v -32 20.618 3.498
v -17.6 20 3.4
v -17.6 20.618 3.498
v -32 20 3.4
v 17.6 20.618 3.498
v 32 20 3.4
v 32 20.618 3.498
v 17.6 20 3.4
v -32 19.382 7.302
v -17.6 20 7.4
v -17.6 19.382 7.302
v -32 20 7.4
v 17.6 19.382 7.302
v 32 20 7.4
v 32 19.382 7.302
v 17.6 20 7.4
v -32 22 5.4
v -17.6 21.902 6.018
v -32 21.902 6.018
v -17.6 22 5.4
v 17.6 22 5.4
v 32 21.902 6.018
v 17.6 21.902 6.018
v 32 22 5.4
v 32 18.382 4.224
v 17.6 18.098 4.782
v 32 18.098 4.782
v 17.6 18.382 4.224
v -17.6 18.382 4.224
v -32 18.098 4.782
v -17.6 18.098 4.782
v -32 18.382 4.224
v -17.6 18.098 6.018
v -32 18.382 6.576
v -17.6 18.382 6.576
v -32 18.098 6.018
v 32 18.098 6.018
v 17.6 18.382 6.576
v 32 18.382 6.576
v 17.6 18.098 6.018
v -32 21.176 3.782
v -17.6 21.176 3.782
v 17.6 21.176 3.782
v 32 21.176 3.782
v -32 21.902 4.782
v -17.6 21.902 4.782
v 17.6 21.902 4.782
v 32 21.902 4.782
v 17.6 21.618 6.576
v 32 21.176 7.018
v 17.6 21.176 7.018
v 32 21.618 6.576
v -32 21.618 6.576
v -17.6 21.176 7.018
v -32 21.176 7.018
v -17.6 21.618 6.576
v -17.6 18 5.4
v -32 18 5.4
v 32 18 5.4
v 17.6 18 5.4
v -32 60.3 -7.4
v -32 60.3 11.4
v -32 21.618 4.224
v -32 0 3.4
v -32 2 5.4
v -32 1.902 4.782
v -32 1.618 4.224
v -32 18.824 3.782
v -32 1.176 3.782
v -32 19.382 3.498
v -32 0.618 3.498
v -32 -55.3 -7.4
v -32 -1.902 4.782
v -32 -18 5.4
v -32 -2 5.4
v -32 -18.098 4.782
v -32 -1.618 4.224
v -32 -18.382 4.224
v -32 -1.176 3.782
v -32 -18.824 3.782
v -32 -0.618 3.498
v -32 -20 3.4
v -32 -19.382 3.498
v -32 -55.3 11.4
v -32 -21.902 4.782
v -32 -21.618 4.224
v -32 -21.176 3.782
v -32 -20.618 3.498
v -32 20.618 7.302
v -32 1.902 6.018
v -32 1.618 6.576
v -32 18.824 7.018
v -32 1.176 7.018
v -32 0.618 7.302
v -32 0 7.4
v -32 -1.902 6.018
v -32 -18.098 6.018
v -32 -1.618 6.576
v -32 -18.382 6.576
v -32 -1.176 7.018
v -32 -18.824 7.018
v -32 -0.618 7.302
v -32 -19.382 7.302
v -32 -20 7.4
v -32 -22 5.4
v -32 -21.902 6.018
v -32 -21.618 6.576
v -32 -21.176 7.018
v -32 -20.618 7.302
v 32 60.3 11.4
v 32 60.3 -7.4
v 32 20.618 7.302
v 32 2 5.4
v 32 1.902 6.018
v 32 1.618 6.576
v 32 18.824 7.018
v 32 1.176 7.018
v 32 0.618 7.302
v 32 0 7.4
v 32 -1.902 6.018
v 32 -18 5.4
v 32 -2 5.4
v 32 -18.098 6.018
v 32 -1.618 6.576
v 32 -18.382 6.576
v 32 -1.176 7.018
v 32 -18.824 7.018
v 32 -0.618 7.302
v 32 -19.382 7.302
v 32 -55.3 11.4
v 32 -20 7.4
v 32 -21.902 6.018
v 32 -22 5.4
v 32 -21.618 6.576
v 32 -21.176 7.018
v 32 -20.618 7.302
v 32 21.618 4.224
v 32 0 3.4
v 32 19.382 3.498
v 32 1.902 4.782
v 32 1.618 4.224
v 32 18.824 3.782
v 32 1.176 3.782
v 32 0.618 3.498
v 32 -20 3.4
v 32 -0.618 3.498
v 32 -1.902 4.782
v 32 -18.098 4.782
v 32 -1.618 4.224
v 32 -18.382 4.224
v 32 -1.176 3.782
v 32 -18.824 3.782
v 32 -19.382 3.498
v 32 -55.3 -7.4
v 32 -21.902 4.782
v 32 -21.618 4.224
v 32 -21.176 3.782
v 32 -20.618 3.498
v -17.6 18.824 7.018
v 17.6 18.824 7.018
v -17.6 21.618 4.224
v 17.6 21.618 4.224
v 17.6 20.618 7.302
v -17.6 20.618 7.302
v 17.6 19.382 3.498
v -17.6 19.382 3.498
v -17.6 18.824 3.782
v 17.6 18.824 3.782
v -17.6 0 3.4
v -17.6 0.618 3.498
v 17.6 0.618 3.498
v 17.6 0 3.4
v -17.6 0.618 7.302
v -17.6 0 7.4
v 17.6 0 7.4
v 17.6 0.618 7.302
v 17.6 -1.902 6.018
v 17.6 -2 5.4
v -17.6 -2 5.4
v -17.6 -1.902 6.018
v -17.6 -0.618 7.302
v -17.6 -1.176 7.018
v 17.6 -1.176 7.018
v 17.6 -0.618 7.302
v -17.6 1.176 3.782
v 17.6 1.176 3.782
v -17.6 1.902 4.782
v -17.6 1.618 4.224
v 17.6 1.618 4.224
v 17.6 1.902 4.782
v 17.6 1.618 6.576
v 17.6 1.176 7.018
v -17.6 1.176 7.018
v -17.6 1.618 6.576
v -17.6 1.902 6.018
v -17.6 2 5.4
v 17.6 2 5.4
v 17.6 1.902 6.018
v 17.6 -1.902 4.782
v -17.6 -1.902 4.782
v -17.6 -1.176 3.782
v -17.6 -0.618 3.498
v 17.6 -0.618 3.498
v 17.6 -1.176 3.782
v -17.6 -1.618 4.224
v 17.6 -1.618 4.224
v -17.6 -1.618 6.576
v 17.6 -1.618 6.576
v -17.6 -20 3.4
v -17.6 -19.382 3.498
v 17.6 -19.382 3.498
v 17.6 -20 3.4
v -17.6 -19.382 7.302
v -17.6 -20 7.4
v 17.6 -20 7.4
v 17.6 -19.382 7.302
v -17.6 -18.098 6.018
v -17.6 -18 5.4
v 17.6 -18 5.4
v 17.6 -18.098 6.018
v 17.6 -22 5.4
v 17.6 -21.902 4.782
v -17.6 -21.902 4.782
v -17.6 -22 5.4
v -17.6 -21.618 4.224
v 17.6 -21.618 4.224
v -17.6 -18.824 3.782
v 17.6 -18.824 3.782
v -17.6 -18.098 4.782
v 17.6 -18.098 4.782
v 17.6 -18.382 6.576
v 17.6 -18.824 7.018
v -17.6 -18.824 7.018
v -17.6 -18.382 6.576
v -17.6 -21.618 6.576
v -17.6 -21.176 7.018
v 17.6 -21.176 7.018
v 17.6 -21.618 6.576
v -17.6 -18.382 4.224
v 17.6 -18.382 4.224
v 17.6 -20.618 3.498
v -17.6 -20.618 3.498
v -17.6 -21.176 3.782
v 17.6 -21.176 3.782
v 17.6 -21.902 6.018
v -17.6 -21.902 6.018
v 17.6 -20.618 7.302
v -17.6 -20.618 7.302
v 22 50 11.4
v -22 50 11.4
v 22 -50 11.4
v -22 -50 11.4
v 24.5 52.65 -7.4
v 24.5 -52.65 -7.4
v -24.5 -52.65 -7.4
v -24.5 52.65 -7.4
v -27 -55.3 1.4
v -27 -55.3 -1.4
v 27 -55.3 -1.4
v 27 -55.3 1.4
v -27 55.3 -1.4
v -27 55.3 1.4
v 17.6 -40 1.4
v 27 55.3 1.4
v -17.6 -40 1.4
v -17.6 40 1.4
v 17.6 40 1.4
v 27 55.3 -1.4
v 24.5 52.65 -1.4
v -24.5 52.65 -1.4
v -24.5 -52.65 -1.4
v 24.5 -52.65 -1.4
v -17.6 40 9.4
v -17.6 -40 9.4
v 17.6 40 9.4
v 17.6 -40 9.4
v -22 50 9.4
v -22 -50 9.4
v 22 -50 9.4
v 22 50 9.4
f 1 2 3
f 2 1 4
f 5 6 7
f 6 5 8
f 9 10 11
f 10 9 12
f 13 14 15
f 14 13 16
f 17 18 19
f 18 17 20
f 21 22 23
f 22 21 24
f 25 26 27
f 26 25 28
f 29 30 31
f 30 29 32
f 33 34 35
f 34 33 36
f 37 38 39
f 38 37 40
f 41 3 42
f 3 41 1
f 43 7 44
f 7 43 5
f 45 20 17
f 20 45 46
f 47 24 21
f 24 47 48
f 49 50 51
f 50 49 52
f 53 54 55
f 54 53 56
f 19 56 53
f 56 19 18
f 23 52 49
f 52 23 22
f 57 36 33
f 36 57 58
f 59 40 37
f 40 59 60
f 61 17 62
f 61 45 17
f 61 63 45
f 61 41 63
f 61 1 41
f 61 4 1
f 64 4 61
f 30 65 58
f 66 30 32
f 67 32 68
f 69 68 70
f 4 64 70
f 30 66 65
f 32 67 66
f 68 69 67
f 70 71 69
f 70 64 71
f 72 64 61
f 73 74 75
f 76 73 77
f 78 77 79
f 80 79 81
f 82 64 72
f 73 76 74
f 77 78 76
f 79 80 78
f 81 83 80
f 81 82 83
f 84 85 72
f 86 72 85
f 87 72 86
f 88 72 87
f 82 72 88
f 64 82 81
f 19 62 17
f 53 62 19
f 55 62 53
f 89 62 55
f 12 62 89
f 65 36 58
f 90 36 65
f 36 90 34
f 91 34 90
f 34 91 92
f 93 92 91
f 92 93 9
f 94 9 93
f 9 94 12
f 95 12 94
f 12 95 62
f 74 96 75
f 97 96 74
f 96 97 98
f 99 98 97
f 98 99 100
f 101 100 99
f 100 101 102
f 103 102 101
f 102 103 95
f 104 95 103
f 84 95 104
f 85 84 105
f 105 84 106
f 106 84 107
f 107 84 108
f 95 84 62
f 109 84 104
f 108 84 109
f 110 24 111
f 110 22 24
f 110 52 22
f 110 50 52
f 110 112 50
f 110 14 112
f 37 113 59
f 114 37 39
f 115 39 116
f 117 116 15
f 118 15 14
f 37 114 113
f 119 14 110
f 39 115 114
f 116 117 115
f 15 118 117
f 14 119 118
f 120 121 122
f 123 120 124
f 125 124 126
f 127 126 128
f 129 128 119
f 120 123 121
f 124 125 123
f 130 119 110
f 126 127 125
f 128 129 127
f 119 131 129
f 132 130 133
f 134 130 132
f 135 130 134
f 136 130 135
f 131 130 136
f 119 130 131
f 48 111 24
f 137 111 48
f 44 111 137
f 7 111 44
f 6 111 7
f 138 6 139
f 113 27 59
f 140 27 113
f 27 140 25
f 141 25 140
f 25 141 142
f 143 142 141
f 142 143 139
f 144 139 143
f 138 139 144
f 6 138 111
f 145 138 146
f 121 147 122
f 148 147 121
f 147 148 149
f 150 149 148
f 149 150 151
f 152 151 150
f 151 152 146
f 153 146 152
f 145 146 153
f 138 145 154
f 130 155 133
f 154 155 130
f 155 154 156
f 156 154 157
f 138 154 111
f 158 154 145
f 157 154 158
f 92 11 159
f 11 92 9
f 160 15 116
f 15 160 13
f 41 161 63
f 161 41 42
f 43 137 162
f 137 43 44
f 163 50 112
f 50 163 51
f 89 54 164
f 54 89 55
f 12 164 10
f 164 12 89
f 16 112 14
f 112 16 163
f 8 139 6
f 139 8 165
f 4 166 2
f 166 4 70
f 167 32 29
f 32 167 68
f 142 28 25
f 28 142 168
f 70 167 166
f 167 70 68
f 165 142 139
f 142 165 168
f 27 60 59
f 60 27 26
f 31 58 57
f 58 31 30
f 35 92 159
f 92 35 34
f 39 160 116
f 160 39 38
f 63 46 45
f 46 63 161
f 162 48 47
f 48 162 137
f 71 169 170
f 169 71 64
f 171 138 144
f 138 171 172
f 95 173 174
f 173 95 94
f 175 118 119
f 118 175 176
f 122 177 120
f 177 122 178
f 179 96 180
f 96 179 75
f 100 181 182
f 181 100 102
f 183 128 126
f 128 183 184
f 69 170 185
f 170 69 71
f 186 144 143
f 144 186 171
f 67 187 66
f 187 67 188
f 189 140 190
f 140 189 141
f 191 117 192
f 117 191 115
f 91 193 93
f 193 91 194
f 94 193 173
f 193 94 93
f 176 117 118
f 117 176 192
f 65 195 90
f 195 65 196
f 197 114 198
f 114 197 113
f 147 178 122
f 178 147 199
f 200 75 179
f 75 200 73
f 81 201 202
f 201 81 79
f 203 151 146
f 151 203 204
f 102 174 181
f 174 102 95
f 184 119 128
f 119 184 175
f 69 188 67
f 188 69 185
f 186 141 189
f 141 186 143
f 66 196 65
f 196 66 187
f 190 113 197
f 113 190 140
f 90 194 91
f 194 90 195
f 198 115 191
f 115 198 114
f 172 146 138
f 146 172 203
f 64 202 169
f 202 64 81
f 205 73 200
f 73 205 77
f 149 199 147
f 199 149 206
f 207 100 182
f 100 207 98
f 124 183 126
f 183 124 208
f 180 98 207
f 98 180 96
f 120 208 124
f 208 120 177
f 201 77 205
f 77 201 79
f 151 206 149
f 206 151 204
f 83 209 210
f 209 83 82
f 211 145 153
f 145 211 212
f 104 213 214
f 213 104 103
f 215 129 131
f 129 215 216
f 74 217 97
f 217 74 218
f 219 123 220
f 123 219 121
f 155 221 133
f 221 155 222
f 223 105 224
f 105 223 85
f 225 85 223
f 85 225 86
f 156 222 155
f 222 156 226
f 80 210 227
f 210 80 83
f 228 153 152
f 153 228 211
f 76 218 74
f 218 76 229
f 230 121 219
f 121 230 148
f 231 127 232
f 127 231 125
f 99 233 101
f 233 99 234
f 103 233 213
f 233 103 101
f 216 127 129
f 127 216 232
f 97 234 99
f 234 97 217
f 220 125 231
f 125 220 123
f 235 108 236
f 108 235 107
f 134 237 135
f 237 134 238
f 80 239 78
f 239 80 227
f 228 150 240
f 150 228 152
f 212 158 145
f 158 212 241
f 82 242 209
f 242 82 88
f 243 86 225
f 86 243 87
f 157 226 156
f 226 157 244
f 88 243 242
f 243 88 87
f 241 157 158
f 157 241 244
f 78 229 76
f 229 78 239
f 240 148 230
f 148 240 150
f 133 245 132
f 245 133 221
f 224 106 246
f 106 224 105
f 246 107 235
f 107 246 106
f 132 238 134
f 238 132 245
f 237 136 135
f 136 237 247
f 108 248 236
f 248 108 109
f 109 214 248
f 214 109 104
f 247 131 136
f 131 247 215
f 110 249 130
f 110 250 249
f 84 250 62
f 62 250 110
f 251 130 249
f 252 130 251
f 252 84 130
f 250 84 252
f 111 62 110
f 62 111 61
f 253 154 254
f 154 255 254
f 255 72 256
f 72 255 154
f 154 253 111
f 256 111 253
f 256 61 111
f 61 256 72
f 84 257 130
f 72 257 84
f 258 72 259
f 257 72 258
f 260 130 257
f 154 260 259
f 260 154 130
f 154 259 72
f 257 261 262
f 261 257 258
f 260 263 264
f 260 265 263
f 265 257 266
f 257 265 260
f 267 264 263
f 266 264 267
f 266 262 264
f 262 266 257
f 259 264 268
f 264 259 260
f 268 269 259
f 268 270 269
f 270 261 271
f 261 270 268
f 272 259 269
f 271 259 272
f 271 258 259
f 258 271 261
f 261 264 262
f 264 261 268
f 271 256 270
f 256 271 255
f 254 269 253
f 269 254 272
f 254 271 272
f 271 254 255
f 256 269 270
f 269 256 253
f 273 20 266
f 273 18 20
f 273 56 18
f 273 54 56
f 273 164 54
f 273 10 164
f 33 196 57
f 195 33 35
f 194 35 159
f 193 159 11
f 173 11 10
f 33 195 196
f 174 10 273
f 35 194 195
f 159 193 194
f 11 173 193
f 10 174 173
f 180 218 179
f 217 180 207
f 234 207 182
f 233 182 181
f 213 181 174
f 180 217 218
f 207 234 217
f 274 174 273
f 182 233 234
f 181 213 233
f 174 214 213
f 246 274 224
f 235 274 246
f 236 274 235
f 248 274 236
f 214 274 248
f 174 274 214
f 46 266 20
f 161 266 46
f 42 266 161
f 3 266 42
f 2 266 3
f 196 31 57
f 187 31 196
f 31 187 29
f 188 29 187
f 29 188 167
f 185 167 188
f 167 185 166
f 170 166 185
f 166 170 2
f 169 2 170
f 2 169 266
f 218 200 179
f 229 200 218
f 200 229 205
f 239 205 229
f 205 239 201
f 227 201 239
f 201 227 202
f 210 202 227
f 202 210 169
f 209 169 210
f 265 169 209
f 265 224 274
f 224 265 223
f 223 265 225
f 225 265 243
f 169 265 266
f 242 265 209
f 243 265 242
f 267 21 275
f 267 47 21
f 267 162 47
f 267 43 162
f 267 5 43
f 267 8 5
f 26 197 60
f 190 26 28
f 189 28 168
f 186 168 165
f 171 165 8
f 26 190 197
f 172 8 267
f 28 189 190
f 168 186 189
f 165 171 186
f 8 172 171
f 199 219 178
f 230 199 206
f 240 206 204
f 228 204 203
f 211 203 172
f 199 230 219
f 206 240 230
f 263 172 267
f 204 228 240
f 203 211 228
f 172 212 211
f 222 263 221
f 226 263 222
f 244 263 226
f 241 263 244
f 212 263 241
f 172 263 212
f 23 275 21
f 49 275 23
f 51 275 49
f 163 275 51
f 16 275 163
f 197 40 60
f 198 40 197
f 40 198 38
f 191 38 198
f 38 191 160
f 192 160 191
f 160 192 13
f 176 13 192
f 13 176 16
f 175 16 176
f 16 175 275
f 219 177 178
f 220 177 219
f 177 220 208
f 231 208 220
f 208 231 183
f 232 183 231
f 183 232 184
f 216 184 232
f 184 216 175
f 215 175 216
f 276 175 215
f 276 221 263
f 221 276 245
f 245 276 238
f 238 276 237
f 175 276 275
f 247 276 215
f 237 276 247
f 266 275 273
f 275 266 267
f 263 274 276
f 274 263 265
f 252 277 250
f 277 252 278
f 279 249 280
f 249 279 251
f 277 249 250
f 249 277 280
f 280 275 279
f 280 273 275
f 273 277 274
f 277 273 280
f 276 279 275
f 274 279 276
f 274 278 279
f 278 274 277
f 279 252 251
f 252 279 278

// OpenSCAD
cdXtol = 1.0; //ceramic dimension X tolerance
cdYtol = 0.6; //ceramic dimension Y tolerance
cdZtol = 0.3; //ceramic dimension Z tolerance
cdX = 53+cdXtol; //ceramic dimension X
cdY = 110+cdYtol; //ceramic dimension Y
cdZ = 2.5+cdZtol; //ceramic dimension Z

ndXtol = 0.0; //net base dimension X tolerance
ndYtol = 0.0; //net base dimension Y tolerance
ndZtol = 0.0; //net base dimension Z tolerance
ndX = 44+ndXtol; //net base dimension X
ndY = 100+ndYtol; //net base dimension Y
ndZ = 0.0+ndZtol; //net base dimension Z

gdXtol = 0;// ground dimension Z tolerance
gdZ = 6+gdXtol; //ground dimension Z

uct = 10; //upper chamber thickness
sct = 5; //side chamber thickness

pdZ = 2; //plexi dimension Z

module ceramic() {
    color("Gainsboro") cube([cdX,cdY,cdZ], center=true); 
}

module netbase() {
    translate([0,0,cdZ/2+ndZ/2])
    color("SandyBrown") cube([ndX,ndY,ndZ], center=true); 
}

module gnd() {
    translate([0,0,-cdZ/2-gdZ/2])
    color("DarkKhaki") cube([(cdX+ndX)/2,(cdY+ndY)/2,gdZ], center=true);     
}

module visible() {
    translate([0,0,cdZ/2+ndZ+uct/2])
    color("Red") cube([ndX*0.8,ndY*0.8,uct], center=true); 
}

module plexi() {
    translate([0,0,cdZ/2+ndZ+uct-pdZ/2])
    color("Red") cube([ndX,ndY,pdZ], center=true); 
}
module box() {
    translate([0,sct/2,-cdZ/2-gdZ+(cdZ+ndZ+gdZ+uct)/2])
    color("Green") cube([cdX+2*sct,cdY+sct,cdZ+ndZ+gdZ+uct], center=true); 
}

module prism(l, w, h){
       rotate([90,0,90])translate([-l/2,-w/2,-h/2]) polyhedron(
               points=[[0,0,0], [l,0,0], [l,w,0], [0,w,0], [3*l/8,0,h], [5*l/8,0,h],
    [5*l/8,w,h], [3*l/8,w,h]],
               faces=[[0,1,2,3], [4,7,6,5], [0,3,7,4], [2,6,7,3], [1,5,6,2], [0,4,5,1]] 
               );
}

module prismCut() {    
    union(){
        translate([(cdX+2*sct-ndY*0.8)/8+ndX*0.4,0,cdZ/2+ndZ+(uct-pdZ)/2])
        prism(ndY*0.64,(uct-pdZ)/2,(cdX+2*sct-ndY*0.8)/4);
        
        mirror([1,0,0])
        translate([(cdX+2*sct-ndY*0.8)/8+ndX*0.4,0,cdZ/2+ndZ+(uct-pdZ)/2])
        prism(ndY*0.64,(uct-pdZ)/2,(cdX+2*sct-ndY*0.8)/4);
        
        translate([0,0,cdZ/2+ndZ+(uct-pdZ)/2])
        rotate([0,90,0])
        cylinder(  cdX+2*sct, d=(uct-pdZ)/2, center=true, $fn=20);
        }
    
}

module holes() {
    translate([0,ndY*0.8/4,cdZ/2+ndZ+(uct-pdZ)/2])
    rotate([0,90,0])
    cylinder(  cdX+2*sct, d=(uct-pdZ)/2, center=true, $fn=20);
    
    translate([0,0,cdZ/2+ndZ+(uct-pdZ)/2])
    rotate([0,90,0])
    cylinder(  cdX+2*sct, d=(uct-pdZ)/2, center=true, $fn=20);
    
    translate([0,-ndY*0.8/4,cdZ/2+ndZ+(uct-pdZ)/2])
    rotate([0,90,0])
    cylinder(  cdX+2*sct, d=(uct-pdZ)/2, center=true, $fn=20);
    
}
module frame() {
    difference(){
        box();
        ceramic();        
        netbase();
        translate([0,-ndY,0]) netbase();
        gnd();
        visible();
        plexi();
        //uncomment one of those
        //prismCut();
        holes();        
        }    
    }

frame();
    

//ceramic();
//netbase();
//gnd();
//visible();
//box();
